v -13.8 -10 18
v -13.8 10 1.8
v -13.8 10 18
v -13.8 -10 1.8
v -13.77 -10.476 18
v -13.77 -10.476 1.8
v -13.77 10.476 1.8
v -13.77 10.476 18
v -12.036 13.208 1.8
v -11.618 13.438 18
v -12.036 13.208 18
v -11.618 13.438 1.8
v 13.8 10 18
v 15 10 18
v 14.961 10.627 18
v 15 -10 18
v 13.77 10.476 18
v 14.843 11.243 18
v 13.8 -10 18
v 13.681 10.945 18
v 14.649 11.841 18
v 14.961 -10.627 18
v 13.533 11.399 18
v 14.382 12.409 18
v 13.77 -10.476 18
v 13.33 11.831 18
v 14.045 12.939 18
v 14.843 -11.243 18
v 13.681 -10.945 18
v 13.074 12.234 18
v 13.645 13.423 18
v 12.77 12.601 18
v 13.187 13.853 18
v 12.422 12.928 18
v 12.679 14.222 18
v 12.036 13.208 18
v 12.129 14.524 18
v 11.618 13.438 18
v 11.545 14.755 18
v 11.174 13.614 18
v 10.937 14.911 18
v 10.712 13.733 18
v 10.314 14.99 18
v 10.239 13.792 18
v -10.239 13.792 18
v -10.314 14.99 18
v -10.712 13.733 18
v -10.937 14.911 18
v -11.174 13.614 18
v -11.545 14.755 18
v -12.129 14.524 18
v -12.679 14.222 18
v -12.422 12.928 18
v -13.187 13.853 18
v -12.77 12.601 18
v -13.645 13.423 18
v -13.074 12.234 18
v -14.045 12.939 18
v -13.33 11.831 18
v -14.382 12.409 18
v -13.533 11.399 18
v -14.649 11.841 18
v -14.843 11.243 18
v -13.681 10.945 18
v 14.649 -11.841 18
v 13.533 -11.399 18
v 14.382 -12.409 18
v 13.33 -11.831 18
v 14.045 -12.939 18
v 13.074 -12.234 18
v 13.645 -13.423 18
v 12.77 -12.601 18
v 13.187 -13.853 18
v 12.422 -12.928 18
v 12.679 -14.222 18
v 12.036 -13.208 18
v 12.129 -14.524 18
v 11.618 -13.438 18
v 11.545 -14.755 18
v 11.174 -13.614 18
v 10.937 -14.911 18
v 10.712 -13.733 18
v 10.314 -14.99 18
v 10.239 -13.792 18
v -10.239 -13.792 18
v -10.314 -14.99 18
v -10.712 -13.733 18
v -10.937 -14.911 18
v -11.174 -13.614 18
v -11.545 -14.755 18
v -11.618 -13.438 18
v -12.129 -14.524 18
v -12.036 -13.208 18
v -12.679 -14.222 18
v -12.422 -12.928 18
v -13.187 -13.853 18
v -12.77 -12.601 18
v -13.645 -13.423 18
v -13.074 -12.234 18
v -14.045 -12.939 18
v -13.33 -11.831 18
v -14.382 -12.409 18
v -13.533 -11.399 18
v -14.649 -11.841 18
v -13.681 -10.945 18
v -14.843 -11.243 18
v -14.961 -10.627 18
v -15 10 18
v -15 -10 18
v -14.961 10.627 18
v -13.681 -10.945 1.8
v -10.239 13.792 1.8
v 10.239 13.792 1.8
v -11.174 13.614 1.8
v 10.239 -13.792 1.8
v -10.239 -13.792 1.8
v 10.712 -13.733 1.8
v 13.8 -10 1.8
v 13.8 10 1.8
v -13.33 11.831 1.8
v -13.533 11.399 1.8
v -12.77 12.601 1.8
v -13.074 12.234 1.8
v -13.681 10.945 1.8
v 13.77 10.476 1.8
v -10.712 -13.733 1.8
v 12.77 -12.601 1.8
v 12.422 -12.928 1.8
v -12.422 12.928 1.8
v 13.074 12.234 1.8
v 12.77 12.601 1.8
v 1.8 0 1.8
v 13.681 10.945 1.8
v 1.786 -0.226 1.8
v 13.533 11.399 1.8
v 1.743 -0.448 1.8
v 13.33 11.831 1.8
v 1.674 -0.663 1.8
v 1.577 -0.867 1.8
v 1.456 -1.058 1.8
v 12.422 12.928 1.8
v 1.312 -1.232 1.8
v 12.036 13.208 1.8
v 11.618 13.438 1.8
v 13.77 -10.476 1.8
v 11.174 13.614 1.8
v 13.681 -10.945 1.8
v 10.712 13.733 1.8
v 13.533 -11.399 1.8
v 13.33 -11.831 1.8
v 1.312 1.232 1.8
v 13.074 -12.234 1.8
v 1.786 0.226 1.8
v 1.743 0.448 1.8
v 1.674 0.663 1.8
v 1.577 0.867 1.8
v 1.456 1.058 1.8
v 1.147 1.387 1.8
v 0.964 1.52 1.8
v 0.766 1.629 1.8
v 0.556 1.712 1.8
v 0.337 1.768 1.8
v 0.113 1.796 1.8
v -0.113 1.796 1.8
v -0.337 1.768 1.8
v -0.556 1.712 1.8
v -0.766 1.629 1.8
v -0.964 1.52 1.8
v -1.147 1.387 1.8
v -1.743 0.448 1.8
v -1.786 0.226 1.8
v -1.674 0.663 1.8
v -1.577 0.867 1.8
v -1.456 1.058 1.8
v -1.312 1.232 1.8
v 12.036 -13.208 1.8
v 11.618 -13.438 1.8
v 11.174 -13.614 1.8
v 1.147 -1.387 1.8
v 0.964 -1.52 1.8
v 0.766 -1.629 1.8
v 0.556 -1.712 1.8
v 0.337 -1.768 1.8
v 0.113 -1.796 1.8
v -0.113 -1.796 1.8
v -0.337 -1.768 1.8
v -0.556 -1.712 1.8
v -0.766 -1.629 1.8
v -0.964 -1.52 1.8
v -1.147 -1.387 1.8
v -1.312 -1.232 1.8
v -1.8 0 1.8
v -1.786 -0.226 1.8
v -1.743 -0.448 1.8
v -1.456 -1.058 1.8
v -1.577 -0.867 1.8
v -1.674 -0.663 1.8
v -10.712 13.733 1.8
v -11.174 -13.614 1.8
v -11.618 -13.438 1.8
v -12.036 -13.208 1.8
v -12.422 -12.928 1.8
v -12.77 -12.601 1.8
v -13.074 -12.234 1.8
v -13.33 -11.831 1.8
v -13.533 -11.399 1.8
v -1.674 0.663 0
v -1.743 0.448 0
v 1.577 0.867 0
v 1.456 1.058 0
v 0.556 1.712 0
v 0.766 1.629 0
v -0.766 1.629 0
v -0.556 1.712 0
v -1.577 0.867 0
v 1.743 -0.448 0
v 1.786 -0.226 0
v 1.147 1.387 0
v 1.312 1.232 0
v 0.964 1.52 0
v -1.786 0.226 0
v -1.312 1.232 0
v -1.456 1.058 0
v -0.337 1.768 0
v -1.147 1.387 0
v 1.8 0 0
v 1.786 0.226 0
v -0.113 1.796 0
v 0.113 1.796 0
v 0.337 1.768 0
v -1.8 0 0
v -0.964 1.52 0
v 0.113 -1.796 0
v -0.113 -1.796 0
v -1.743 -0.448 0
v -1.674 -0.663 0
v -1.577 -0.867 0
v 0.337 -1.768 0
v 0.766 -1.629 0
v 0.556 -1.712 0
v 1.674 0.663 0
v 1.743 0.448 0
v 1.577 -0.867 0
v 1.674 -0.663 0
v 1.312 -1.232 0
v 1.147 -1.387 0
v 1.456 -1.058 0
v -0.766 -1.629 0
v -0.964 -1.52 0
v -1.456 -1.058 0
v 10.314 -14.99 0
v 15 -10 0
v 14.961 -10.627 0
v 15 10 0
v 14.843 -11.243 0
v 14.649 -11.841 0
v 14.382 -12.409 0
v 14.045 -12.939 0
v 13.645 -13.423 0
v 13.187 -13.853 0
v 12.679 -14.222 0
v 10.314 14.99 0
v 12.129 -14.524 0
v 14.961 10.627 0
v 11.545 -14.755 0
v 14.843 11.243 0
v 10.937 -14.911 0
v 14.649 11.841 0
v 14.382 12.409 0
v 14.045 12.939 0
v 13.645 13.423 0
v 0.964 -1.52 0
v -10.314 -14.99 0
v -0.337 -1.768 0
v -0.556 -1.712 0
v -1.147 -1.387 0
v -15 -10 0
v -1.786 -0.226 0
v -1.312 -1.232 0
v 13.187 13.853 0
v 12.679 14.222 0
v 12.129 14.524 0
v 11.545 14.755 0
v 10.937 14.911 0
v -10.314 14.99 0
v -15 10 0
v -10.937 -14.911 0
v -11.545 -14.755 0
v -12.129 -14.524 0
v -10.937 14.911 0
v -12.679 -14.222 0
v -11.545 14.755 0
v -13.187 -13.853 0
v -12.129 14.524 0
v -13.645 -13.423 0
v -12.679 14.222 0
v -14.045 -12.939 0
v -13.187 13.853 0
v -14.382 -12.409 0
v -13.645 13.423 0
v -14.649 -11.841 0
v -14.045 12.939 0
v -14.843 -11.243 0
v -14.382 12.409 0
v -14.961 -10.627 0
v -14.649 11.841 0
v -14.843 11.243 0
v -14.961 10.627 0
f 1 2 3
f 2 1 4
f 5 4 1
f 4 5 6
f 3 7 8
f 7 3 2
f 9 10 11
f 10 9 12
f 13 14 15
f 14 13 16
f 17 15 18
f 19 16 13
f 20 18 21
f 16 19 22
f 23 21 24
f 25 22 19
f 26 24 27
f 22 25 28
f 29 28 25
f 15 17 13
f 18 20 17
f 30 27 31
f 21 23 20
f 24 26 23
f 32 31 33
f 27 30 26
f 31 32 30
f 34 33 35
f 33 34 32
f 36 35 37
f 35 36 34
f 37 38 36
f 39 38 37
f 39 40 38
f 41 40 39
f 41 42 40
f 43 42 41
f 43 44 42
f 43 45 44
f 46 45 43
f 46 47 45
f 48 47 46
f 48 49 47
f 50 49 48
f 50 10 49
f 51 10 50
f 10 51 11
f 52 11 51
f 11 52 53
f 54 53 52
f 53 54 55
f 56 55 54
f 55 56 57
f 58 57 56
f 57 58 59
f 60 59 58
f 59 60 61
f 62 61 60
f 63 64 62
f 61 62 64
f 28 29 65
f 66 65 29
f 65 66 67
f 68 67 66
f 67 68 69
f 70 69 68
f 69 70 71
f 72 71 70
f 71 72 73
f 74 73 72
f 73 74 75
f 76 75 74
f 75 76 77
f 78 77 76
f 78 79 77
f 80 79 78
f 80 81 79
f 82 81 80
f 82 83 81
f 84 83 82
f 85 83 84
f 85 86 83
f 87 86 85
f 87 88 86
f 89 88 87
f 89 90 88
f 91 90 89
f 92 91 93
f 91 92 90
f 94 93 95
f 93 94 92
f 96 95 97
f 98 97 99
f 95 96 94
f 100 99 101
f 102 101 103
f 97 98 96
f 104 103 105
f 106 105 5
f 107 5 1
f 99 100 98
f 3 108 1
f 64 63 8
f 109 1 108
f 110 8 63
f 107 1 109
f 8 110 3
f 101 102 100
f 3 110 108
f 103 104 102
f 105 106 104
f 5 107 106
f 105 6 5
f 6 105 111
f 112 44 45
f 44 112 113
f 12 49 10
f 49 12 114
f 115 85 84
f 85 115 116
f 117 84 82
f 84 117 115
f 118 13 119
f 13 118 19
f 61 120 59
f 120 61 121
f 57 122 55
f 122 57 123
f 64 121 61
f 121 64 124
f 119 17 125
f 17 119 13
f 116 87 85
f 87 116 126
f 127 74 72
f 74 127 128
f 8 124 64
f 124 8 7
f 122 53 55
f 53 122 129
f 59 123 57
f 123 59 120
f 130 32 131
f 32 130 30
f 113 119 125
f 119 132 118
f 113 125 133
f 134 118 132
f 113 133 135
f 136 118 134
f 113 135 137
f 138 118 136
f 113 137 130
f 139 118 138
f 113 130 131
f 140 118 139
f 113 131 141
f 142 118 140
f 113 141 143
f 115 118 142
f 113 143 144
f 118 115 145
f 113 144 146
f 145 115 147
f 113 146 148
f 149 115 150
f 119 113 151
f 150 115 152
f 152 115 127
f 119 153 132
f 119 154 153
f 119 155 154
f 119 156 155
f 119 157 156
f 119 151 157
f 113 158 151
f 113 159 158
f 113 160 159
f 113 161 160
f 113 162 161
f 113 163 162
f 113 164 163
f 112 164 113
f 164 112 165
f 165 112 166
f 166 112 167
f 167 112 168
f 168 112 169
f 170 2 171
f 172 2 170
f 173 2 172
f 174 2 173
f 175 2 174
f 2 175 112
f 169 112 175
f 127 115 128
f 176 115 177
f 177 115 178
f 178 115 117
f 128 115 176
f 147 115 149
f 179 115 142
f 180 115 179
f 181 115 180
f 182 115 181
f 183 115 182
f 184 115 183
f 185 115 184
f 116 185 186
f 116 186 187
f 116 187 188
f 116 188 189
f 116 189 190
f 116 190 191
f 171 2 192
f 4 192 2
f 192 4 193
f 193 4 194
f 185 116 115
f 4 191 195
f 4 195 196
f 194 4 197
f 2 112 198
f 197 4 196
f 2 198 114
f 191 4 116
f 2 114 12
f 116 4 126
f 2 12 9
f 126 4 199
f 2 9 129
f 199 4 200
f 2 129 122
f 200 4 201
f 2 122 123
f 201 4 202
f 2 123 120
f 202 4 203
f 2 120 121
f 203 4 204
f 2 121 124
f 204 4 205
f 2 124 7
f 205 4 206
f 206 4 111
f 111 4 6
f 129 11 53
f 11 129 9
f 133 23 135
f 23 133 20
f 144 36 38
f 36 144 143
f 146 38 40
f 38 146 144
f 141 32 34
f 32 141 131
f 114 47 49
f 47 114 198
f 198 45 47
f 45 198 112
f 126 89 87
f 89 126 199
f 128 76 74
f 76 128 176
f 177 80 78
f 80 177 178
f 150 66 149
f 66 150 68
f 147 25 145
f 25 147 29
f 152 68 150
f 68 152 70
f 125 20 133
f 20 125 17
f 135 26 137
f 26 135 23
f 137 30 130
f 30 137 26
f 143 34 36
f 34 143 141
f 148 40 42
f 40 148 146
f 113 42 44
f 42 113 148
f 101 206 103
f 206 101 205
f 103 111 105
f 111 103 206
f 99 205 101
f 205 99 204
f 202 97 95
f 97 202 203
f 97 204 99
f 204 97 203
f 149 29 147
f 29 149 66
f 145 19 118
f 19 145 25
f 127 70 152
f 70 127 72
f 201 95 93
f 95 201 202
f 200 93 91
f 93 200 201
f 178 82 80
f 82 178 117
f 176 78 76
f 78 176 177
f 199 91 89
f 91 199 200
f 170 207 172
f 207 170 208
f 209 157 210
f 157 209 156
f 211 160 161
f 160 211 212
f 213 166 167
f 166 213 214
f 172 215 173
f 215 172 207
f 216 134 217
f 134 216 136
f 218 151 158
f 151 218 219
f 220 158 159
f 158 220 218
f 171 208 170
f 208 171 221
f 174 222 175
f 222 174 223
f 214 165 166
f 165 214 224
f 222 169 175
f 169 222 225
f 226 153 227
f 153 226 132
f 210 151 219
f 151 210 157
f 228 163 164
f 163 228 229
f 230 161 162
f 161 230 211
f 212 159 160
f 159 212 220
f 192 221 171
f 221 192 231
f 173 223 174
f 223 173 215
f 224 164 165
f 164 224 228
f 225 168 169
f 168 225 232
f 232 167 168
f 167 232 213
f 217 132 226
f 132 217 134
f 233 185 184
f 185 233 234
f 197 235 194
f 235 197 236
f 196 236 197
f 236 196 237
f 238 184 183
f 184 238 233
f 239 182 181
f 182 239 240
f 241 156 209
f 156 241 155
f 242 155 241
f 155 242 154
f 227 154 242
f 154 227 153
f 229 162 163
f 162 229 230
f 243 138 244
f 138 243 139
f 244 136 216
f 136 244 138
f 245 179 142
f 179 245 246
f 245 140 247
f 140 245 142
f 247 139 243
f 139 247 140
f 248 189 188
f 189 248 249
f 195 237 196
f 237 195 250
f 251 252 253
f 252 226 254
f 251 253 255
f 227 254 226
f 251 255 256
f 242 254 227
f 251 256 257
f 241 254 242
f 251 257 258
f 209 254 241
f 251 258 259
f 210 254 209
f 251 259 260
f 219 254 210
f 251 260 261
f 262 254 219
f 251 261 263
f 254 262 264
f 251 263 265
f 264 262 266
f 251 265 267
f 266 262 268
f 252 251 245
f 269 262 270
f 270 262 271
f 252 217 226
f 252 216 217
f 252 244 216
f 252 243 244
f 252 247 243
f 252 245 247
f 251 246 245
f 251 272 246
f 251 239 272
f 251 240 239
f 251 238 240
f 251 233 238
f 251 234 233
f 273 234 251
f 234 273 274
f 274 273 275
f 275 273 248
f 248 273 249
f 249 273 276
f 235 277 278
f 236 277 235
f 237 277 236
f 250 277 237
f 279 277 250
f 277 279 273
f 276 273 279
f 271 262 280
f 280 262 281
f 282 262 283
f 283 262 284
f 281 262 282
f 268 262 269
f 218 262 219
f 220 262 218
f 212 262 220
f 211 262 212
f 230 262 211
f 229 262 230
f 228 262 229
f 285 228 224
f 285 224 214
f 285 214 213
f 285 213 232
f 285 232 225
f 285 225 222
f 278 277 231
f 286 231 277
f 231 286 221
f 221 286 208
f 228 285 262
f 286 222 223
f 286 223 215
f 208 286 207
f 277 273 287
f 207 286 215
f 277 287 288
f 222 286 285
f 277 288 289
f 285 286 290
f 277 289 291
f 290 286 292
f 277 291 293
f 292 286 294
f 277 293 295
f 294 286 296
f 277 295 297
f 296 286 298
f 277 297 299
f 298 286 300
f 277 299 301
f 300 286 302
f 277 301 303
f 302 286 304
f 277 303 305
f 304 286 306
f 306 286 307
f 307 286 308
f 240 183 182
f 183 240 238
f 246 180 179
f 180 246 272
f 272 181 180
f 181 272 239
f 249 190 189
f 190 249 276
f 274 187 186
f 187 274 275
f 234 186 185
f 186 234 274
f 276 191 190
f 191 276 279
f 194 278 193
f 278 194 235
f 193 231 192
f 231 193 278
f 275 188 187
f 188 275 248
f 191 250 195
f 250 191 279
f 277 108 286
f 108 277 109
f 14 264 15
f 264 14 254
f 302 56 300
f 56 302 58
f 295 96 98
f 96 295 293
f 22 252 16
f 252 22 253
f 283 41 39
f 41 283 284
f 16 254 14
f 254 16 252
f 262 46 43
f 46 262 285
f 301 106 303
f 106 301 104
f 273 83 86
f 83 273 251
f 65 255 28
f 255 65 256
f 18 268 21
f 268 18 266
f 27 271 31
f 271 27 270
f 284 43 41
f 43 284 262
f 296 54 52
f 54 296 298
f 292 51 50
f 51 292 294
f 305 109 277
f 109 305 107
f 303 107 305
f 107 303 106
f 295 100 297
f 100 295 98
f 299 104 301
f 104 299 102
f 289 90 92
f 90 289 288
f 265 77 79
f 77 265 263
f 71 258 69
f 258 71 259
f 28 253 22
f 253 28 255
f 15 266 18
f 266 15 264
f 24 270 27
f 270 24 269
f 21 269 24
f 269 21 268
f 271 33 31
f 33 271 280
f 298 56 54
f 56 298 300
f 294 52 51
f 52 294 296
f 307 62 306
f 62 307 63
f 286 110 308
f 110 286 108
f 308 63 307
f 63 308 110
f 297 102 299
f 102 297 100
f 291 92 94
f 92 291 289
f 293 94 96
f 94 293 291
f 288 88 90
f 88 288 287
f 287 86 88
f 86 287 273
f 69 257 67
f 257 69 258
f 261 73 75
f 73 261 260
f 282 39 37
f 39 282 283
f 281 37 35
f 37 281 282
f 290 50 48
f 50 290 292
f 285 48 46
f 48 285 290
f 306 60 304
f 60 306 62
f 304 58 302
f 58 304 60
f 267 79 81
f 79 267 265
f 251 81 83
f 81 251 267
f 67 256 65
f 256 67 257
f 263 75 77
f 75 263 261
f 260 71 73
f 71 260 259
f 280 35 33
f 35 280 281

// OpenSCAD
$fn = 50;


difference() {
	union() {
		hull() {
			translate(v = [-10.0000000000, 10.0000000000, 0]) {
				cylinder(h = 18, r = 5);
			}
			translate(v = [10.0000000000, 10.0000000000, 0]) {
				cylinder(h = 18, r = 5);
			}
			translate(v = [-10.0000000000, -10.0000000000, 0]) {
				cylinder(h = 18, r = 5);
			}
			translate(v = [10.0000000000, -10.0000000000, 0]) {
				cylinder(h = 18, r = 5);
			}
		}
	}
	union() {
		translate(v = [0, 0, 1.8000000000]) {
			hull() {
				translate(v = [-10.0000000000, 10.0000000000, 0]) {
					cylinder(h = 16.2000000000, r = 3.8000000000);
				}
				translate(v = [10.0000000000, 10.0000000000, 0]) {
					cylinder(h = 16.2000000000, r = 3.8000000000);
				}
				translate(v = [-10.0000000000, -10.0000000000, 0]) {
					cylinder(h = 16.2000000000, r = 3.8000000000);
				}
				translate(v = [10.0000000000, -10.0000000000, 0]) {
					cylinder(h = 16.2000000000, r = 3.8000000000);
				}
			}
		}
		#cylinder(h = 1.8000000000, r = 1.8000000000);
	}
}
